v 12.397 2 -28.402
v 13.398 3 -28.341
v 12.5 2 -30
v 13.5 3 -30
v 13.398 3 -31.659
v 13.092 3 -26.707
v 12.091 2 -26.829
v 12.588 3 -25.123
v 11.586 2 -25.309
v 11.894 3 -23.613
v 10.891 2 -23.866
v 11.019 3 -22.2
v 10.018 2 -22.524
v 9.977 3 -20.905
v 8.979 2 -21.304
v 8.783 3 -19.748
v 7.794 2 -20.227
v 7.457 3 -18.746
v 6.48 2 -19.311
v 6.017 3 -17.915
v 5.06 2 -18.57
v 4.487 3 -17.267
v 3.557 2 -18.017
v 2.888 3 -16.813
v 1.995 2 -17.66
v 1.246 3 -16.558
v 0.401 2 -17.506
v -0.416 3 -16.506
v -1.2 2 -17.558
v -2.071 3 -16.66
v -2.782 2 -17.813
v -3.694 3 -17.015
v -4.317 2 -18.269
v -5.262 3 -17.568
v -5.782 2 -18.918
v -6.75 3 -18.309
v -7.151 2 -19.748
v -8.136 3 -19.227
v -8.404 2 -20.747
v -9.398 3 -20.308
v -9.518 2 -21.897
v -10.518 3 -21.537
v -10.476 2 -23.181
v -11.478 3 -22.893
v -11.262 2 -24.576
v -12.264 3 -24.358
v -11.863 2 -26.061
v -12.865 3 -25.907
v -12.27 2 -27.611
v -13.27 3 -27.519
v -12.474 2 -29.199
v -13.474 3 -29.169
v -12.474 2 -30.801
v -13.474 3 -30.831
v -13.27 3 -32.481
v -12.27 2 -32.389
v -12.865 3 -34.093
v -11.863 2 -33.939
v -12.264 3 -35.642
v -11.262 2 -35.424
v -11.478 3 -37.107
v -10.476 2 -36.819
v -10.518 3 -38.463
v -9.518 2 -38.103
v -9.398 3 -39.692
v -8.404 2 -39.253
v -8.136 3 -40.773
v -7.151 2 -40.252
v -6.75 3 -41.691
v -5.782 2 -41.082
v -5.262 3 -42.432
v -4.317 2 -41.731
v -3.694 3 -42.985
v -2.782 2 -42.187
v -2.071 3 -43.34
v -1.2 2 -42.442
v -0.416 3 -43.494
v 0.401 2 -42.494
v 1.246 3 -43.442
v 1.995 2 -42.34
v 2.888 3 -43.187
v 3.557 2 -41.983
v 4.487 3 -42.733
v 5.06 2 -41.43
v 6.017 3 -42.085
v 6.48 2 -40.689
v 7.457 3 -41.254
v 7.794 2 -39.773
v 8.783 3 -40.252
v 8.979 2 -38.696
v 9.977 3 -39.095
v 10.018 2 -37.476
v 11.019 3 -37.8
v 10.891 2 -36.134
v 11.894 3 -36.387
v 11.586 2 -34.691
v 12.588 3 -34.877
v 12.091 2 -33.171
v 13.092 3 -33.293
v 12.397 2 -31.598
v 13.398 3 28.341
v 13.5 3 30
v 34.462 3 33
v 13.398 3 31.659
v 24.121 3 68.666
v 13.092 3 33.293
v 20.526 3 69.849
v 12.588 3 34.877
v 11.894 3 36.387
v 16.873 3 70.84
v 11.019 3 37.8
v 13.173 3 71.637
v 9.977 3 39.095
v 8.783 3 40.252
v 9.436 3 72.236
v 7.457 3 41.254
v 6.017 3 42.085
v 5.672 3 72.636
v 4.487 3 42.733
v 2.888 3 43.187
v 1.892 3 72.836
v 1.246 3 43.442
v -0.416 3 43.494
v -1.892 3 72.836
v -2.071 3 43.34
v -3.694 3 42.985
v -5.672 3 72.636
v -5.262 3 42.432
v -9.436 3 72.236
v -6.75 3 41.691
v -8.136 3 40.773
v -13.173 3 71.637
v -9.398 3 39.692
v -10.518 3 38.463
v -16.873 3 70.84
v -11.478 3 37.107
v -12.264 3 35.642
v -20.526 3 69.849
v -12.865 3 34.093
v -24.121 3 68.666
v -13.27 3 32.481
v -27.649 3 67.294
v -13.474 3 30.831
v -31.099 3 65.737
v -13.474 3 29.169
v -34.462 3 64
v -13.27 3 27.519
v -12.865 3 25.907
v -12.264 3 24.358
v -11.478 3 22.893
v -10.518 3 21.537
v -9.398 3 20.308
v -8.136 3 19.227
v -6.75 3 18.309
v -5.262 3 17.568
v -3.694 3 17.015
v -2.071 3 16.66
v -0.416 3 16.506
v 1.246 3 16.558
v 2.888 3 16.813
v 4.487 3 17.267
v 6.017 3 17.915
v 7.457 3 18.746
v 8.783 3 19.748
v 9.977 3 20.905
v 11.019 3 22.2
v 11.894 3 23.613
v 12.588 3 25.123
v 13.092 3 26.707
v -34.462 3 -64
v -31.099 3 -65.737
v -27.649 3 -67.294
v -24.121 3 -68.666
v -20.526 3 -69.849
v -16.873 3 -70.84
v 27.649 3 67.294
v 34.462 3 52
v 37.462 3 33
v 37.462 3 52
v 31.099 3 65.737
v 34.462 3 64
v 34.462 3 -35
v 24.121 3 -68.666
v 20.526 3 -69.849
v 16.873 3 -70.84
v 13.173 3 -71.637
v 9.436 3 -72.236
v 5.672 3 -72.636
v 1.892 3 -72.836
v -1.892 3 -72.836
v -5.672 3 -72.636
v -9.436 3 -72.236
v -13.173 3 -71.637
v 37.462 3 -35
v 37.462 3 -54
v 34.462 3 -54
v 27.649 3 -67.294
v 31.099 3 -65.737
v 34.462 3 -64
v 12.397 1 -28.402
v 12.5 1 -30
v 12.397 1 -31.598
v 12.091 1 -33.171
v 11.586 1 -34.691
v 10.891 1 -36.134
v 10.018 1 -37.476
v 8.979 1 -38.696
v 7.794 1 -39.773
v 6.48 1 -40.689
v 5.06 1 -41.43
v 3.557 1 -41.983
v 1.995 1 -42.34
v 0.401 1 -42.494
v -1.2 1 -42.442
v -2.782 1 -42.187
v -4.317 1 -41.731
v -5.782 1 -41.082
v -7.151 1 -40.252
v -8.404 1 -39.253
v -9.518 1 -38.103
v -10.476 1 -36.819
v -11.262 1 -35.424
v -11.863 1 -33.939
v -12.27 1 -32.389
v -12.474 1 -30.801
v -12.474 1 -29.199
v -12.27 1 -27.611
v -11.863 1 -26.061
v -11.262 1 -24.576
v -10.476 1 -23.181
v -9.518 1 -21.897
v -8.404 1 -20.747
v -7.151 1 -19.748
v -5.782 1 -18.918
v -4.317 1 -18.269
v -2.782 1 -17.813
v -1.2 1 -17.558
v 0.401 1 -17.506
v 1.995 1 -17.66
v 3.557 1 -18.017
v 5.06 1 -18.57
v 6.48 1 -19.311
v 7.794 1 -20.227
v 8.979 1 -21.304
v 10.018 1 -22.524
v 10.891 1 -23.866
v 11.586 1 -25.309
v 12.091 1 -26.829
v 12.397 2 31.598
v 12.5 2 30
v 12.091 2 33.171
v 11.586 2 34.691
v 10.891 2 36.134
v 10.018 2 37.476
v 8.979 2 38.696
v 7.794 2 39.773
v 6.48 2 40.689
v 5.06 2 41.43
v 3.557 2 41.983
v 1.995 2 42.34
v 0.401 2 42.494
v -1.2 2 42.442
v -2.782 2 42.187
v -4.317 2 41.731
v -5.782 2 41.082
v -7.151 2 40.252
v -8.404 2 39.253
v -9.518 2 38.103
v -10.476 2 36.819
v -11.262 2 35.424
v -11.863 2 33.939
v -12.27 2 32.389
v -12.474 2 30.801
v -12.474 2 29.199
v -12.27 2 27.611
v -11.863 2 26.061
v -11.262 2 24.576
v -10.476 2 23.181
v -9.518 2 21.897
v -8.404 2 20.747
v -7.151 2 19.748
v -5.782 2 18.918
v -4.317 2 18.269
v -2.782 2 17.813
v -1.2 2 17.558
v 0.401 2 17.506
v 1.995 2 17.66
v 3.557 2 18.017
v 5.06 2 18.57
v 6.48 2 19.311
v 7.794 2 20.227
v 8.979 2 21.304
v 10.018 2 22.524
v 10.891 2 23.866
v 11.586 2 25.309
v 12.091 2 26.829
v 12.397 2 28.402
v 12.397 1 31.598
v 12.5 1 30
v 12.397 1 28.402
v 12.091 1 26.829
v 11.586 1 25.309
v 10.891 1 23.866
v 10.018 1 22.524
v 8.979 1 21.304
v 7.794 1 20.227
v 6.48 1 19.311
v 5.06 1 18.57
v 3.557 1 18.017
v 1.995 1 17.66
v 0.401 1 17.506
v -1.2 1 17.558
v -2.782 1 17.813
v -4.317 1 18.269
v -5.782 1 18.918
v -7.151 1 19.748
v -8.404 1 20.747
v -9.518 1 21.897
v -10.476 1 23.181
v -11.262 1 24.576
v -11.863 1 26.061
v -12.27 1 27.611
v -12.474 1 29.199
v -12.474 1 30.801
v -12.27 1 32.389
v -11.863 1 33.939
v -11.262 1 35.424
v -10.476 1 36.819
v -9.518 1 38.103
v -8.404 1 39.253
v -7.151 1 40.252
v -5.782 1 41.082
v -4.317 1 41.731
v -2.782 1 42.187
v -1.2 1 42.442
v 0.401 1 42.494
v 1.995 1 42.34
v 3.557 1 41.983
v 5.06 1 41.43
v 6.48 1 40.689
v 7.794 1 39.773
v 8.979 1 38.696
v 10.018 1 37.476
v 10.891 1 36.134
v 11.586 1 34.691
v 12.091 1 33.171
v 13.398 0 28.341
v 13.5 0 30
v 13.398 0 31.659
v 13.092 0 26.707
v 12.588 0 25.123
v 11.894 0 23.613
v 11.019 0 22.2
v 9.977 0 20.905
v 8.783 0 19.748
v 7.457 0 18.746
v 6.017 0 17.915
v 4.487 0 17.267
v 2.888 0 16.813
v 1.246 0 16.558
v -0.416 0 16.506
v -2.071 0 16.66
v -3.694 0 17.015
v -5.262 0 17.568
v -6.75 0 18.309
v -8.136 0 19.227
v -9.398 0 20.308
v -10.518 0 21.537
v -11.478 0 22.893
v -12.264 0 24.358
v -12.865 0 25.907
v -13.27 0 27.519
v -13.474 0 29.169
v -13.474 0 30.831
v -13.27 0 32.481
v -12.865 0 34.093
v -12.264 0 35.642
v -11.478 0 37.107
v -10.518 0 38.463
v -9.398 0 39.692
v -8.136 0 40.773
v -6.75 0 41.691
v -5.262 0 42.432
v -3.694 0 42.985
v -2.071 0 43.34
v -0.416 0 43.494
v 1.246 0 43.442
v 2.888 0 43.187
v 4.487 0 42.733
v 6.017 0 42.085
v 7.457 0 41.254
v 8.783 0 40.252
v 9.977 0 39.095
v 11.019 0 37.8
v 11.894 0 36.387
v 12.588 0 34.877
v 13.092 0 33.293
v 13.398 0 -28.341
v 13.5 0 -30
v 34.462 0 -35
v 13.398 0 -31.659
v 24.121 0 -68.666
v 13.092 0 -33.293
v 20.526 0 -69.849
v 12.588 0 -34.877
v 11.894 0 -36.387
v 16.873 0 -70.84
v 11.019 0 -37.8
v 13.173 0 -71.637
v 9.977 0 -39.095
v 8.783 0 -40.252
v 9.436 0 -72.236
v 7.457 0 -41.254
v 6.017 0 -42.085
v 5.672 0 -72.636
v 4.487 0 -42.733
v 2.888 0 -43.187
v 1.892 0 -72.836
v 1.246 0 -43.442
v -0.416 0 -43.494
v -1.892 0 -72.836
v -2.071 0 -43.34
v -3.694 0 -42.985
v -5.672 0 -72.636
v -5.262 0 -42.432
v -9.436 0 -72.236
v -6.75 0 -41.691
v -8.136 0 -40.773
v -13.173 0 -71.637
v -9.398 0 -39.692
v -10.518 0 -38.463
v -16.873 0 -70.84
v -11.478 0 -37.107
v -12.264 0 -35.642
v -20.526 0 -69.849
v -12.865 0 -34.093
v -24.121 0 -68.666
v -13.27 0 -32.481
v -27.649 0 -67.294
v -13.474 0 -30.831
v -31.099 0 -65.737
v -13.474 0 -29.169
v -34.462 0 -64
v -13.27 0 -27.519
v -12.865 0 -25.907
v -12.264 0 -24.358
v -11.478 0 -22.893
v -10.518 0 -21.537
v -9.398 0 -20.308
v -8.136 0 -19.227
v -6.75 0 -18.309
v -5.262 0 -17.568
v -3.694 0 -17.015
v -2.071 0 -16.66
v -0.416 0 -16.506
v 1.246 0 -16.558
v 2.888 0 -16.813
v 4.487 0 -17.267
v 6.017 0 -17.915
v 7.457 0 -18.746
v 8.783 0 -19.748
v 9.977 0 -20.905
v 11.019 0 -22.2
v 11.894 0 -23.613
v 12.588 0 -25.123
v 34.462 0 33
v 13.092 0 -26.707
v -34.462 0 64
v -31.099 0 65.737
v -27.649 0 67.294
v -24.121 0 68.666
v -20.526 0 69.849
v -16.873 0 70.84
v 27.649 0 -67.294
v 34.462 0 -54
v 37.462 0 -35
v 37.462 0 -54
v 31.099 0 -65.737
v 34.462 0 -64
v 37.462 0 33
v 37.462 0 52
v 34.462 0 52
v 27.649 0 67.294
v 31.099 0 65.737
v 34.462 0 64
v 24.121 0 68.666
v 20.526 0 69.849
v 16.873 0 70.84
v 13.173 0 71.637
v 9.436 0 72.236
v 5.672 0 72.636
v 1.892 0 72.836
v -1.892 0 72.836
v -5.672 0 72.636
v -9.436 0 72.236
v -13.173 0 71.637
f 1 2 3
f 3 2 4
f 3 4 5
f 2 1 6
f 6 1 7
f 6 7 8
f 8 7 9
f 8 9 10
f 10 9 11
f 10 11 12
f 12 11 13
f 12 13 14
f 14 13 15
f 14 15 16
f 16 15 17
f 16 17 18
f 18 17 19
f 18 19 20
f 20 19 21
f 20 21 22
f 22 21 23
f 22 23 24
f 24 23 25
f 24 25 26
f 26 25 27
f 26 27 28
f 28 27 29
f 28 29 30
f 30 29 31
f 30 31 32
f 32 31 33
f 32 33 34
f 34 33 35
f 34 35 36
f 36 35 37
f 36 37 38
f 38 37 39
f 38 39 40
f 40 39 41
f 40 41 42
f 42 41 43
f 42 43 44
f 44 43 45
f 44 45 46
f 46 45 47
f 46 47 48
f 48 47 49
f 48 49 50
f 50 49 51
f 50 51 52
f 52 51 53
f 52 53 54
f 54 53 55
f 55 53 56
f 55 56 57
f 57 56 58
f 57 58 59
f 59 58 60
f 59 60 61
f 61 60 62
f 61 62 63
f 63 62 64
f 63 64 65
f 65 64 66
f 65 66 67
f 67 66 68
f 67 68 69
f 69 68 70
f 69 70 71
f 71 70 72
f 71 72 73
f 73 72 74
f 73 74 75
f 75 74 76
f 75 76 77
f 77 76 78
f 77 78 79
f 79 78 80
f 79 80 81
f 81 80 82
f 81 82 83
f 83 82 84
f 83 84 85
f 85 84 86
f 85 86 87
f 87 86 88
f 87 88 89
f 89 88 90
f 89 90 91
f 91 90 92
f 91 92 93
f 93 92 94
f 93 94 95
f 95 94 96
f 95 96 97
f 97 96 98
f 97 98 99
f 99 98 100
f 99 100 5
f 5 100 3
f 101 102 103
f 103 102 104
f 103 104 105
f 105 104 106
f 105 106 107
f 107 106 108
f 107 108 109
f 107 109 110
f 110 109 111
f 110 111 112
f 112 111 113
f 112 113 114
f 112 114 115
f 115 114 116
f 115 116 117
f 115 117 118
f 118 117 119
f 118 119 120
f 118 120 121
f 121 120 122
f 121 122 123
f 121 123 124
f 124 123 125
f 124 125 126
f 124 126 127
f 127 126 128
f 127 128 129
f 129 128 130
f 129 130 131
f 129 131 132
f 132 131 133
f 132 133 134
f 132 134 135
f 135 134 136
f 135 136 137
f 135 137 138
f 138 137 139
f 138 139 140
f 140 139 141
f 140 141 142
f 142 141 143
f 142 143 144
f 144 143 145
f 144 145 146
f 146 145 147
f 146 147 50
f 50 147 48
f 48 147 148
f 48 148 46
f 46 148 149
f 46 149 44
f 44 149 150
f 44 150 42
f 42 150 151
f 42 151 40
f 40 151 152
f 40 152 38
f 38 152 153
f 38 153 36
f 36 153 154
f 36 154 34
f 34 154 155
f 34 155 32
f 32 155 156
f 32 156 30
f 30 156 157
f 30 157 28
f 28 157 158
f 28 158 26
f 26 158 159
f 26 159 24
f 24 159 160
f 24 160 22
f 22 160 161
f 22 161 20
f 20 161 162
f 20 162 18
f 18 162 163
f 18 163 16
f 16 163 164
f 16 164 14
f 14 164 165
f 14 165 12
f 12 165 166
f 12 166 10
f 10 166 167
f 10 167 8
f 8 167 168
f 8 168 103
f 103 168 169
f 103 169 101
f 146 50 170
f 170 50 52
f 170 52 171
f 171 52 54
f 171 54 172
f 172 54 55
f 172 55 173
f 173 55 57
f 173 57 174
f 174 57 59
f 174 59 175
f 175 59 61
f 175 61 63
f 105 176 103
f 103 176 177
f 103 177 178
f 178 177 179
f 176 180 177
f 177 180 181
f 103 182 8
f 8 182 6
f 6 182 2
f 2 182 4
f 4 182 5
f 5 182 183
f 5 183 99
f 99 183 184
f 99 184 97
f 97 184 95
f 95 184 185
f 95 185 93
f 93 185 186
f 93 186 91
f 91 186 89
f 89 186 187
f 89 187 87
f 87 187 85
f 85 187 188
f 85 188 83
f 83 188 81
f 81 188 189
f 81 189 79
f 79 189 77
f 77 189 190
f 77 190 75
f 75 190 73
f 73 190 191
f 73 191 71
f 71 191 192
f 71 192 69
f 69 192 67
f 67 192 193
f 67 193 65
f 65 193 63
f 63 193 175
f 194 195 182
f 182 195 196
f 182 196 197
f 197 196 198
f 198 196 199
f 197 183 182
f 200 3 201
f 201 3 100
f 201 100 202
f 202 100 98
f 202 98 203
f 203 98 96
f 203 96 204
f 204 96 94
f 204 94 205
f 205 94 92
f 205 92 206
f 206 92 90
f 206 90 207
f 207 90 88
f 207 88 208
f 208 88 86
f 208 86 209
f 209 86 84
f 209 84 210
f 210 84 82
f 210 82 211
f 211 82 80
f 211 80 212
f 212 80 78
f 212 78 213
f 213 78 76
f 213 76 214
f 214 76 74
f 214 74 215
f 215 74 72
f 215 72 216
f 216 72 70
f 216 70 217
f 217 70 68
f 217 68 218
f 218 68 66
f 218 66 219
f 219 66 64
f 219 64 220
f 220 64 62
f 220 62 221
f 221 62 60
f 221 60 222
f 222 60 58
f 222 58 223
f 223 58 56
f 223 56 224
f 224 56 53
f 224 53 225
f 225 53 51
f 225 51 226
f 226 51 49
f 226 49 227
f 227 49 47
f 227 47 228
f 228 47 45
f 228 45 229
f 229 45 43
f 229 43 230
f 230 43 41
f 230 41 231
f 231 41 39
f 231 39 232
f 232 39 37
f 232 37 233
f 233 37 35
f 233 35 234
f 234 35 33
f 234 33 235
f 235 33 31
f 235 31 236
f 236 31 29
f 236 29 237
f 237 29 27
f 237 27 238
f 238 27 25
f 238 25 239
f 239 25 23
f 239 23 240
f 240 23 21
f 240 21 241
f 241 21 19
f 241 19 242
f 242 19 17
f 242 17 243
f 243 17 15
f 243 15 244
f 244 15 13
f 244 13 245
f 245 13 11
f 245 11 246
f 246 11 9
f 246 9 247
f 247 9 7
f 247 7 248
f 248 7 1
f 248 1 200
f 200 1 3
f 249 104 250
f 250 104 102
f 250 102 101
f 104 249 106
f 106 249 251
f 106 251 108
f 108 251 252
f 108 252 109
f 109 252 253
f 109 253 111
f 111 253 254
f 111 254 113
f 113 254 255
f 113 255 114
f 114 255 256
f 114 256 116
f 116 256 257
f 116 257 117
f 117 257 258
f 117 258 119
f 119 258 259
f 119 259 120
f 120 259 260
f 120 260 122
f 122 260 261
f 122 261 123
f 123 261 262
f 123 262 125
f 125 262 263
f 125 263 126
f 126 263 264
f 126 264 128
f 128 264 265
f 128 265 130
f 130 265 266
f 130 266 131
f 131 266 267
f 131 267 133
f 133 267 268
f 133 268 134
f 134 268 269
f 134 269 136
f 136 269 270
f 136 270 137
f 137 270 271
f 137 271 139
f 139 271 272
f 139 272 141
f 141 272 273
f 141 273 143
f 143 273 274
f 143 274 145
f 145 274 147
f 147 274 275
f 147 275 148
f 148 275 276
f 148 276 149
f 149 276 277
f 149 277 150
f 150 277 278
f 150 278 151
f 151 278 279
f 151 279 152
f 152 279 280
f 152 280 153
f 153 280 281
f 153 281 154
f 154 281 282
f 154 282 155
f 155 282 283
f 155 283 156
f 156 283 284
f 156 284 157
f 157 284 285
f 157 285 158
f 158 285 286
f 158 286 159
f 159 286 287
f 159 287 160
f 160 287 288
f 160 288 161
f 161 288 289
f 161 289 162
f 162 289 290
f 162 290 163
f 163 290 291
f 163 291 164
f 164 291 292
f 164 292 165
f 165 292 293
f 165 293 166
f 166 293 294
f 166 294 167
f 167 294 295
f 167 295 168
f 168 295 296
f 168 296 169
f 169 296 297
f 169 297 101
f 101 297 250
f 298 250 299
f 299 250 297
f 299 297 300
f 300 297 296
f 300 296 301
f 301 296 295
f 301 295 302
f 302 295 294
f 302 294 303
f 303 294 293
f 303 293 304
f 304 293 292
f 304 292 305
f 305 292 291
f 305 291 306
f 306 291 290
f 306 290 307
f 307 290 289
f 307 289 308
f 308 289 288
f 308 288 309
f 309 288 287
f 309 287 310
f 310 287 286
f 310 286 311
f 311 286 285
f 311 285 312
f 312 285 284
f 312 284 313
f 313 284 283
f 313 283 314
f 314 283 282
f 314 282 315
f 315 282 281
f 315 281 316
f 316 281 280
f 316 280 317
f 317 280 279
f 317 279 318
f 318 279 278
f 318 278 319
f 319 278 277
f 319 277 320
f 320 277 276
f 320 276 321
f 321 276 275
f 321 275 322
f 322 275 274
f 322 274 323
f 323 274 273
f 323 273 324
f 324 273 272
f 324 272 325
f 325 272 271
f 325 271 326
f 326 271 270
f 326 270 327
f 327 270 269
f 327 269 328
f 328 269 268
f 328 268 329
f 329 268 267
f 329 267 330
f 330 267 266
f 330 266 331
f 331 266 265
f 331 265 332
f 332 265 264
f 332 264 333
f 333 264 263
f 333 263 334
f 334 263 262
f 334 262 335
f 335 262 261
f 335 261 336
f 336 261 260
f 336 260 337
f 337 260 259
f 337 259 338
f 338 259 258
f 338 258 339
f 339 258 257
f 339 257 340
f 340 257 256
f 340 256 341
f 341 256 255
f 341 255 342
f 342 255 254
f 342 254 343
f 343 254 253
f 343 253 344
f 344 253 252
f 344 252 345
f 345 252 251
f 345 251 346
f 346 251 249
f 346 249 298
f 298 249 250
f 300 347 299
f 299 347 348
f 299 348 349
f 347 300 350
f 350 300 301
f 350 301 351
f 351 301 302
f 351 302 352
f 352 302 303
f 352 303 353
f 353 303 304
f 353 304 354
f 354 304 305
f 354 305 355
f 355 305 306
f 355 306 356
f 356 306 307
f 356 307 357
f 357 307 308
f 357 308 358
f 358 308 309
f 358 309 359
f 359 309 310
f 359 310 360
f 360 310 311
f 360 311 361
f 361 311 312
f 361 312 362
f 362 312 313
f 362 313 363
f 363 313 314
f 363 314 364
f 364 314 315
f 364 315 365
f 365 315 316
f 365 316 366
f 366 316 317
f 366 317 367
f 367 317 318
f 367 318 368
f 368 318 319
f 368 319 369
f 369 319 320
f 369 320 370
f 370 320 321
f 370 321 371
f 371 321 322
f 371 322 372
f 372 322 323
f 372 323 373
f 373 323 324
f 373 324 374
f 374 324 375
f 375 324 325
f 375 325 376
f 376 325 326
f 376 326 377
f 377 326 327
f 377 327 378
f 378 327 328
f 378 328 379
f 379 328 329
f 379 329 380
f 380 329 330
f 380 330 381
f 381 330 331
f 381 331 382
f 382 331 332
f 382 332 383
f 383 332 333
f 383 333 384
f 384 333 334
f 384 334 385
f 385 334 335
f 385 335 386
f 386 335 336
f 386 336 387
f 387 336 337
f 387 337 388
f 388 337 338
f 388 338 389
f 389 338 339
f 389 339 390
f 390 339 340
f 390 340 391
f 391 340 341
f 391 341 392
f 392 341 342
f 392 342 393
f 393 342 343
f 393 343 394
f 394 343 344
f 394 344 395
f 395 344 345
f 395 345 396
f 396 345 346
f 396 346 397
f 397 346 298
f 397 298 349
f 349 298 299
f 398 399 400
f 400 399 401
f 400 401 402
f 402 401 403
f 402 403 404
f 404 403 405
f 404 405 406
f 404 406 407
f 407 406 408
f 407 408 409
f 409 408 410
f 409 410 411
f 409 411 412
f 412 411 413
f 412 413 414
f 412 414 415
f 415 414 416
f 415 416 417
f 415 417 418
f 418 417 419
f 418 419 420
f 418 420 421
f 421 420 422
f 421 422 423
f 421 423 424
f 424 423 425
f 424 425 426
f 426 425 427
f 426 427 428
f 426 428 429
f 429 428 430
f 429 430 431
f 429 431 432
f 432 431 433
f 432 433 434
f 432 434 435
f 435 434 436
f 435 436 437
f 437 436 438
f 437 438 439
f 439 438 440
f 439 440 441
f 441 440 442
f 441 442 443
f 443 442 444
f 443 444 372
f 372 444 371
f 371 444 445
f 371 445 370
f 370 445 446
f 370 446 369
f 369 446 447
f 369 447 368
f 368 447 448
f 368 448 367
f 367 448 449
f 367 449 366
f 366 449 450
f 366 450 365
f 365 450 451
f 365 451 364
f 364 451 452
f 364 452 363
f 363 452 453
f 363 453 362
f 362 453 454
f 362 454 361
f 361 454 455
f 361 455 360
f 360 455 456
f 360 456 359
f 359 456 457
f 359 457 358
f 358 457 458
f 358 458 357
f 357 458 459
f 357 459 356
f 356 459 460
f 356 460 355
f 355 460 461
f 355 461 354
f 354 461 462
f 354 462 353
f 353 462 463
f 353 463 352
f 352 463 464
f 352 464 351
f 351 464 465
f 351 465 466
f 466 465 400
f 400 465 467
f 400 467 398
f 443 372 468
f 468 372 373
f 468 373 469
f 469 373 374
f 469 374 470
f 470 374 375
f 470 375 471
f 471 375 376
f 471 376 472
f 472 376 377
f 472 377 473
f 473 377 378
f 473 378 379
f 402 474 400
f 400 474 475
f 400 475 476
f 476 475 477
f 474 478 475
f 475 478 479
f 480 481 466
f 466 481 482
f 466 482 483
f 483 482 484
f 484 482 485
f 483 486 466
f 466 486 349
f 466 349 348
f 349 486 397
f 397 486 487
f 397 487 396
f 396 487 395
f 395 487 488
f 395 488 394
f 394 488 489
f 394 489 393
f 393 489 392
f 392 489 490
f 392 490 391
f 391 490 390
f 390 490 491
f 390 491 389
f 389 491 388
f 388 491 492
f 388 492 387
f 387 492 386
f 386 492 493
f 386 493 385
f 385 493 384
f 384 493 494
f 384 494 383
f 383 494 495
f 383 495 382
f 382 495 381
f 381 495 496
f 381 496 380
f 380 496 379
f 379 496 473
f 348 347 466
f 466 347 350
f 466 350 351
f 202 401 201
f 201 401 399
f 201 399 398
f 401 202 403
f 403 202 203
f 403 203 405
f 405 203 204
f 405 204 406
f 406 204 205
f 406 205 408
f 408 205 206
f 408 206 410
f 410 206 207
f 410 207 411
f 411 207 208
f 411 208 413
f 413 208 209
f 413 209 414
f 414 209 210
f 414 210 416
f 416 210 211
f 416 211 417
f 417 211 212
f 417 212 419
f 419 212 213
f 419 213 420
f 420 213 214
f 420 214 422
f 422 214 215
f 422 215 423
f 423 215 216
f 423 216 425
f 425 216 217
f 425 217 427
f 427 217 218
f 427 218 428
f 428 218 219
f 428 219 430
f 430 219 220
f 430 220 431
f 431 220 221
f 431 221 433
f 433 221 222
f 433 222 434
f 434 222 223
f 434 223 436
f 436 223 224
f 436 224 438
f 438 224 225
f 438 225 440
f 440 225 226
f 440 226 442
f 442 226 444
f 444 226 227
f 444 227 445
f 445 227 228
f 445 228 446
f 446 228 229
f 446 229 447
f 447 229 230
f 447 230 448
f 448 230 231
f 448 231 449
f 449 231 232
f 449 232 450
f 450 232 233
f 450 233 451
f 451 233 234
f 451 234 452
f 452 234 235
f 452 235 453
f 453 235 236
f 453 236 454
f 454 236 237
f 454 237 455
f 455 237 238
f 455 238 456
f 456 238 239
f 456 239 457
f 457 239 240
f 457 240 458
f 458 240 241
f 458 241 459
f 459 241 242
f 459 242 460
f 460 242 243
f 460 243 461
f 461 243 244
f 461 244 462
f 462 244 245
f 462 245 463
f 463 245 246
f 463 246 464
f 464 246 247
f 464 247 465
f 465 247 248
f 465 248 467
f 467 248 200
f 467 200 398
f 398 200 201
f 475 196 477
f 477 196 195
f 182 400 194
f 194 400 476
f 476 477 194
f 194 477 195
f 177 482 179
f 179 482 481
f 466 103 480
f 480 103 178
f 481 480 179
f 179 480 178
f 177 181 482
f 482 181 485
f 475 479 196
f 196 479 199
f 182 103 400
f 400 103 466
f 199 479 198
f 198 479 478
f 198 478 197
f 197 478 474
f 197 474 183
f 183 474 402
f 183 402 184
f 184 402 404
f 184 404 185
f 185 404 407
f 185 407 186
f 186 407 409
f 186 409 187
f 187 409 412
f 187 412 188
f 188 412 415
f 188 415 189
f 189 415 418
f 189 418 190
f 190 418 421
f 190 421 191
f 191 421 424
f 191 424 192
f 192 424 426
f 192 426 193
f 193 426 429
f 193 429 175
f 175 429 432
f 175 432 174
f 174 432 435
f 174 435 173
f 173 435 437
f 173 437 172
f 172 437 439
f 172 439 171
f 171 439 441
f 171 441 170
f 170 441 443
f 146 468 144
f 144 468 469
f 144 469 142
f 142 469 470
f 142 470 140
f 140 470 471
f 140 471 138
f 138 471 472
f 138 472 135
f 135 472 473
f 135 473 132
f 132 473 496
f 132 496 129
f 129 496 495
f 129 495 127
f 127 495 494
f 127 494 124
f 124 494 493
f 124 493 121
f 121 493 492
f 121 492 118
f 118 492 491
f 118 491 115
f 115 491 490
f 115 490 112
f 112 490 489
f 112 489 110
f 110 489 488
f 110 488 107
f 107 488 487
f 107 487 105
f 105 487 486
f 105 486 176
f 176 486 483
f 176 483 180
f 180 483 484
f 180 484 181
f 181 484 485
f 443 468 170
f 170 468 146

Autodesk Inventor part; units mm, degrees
ref_plane "YZ Plane" through (0, 0, 0) normal (1, 0, 0) x (0, 1, 0)
ref_plane "XZ Plane" through (0, 0, 0) normal (0, 1, 0) x (-1, 0, 0)
ref_plane "XY Plane" through (0, 0, 0) normal (0, 0, 1) x (1, 0, 0)
sketch "Sketch1" plane through (0, 0, 0) normal (0, 1, 0) x (-1, 0, 0)
  line L0 (34.4615, 64) -> (34.4615, -64)
  line L1 (-34.4615, -64) -> (-34.4615, 64)
  line L2 (-34.4615, 64) -> (34.4615, -64) construction
  line L3 (34.4615, 64) -> (-34.4615, -64) construction
  arc A0 (-34.4615, -64) -> (34.4615, -64) centre (0, -1.4222) ccw
  arc A1 (34.4615, 64) -> (-34.4615, 64) centre (0, 1.4222) ccw
  point P0 (0, 0)
  dimension "d1" = 128
extrude "taban" add sketch "Sketch1" along normal blind 3
sketch "Sketch2" plane through (0, 3, 0) normal (0, 1, 0) x (1, 0, 0)
  circle A0 centre (0, 30) radius 12.5
  circle A1 centre (0, -30) radius 12.5
extrude "cam" cut sketch "Sketch2" against normal blind 3
sketch "Sketch3" plane through (34.4615, 0, 64) normal (1, 0, 0) x (0, 0, -1)
  line L0 (12, 3) -> (31, 3)
  line L1 (31, 3) -> (31, 0)
  line L2 (31, 0) -> (12, 0)
  line L3 (12, 0) -> (12, 3)
  line L4 (118, 3) -> (99, 3)
  line L5 (99, 3) -> (99, 0)
  line L6 (99, 0) -> (118, 0)
  line L7 (118, 0) -> (118, 3)
extrude "sikigecme" add sketch "Sketch3" along normal blind 3
chamfer "Chamfer1" distance 1 angle 45 4 edges at (-12.5, 0, -30) (-12.5, 0, 30) (-12.5, 3, 30) (-12.5, 3, -30)
properties part number "VR_Cam_Kismi_3DPrint"
